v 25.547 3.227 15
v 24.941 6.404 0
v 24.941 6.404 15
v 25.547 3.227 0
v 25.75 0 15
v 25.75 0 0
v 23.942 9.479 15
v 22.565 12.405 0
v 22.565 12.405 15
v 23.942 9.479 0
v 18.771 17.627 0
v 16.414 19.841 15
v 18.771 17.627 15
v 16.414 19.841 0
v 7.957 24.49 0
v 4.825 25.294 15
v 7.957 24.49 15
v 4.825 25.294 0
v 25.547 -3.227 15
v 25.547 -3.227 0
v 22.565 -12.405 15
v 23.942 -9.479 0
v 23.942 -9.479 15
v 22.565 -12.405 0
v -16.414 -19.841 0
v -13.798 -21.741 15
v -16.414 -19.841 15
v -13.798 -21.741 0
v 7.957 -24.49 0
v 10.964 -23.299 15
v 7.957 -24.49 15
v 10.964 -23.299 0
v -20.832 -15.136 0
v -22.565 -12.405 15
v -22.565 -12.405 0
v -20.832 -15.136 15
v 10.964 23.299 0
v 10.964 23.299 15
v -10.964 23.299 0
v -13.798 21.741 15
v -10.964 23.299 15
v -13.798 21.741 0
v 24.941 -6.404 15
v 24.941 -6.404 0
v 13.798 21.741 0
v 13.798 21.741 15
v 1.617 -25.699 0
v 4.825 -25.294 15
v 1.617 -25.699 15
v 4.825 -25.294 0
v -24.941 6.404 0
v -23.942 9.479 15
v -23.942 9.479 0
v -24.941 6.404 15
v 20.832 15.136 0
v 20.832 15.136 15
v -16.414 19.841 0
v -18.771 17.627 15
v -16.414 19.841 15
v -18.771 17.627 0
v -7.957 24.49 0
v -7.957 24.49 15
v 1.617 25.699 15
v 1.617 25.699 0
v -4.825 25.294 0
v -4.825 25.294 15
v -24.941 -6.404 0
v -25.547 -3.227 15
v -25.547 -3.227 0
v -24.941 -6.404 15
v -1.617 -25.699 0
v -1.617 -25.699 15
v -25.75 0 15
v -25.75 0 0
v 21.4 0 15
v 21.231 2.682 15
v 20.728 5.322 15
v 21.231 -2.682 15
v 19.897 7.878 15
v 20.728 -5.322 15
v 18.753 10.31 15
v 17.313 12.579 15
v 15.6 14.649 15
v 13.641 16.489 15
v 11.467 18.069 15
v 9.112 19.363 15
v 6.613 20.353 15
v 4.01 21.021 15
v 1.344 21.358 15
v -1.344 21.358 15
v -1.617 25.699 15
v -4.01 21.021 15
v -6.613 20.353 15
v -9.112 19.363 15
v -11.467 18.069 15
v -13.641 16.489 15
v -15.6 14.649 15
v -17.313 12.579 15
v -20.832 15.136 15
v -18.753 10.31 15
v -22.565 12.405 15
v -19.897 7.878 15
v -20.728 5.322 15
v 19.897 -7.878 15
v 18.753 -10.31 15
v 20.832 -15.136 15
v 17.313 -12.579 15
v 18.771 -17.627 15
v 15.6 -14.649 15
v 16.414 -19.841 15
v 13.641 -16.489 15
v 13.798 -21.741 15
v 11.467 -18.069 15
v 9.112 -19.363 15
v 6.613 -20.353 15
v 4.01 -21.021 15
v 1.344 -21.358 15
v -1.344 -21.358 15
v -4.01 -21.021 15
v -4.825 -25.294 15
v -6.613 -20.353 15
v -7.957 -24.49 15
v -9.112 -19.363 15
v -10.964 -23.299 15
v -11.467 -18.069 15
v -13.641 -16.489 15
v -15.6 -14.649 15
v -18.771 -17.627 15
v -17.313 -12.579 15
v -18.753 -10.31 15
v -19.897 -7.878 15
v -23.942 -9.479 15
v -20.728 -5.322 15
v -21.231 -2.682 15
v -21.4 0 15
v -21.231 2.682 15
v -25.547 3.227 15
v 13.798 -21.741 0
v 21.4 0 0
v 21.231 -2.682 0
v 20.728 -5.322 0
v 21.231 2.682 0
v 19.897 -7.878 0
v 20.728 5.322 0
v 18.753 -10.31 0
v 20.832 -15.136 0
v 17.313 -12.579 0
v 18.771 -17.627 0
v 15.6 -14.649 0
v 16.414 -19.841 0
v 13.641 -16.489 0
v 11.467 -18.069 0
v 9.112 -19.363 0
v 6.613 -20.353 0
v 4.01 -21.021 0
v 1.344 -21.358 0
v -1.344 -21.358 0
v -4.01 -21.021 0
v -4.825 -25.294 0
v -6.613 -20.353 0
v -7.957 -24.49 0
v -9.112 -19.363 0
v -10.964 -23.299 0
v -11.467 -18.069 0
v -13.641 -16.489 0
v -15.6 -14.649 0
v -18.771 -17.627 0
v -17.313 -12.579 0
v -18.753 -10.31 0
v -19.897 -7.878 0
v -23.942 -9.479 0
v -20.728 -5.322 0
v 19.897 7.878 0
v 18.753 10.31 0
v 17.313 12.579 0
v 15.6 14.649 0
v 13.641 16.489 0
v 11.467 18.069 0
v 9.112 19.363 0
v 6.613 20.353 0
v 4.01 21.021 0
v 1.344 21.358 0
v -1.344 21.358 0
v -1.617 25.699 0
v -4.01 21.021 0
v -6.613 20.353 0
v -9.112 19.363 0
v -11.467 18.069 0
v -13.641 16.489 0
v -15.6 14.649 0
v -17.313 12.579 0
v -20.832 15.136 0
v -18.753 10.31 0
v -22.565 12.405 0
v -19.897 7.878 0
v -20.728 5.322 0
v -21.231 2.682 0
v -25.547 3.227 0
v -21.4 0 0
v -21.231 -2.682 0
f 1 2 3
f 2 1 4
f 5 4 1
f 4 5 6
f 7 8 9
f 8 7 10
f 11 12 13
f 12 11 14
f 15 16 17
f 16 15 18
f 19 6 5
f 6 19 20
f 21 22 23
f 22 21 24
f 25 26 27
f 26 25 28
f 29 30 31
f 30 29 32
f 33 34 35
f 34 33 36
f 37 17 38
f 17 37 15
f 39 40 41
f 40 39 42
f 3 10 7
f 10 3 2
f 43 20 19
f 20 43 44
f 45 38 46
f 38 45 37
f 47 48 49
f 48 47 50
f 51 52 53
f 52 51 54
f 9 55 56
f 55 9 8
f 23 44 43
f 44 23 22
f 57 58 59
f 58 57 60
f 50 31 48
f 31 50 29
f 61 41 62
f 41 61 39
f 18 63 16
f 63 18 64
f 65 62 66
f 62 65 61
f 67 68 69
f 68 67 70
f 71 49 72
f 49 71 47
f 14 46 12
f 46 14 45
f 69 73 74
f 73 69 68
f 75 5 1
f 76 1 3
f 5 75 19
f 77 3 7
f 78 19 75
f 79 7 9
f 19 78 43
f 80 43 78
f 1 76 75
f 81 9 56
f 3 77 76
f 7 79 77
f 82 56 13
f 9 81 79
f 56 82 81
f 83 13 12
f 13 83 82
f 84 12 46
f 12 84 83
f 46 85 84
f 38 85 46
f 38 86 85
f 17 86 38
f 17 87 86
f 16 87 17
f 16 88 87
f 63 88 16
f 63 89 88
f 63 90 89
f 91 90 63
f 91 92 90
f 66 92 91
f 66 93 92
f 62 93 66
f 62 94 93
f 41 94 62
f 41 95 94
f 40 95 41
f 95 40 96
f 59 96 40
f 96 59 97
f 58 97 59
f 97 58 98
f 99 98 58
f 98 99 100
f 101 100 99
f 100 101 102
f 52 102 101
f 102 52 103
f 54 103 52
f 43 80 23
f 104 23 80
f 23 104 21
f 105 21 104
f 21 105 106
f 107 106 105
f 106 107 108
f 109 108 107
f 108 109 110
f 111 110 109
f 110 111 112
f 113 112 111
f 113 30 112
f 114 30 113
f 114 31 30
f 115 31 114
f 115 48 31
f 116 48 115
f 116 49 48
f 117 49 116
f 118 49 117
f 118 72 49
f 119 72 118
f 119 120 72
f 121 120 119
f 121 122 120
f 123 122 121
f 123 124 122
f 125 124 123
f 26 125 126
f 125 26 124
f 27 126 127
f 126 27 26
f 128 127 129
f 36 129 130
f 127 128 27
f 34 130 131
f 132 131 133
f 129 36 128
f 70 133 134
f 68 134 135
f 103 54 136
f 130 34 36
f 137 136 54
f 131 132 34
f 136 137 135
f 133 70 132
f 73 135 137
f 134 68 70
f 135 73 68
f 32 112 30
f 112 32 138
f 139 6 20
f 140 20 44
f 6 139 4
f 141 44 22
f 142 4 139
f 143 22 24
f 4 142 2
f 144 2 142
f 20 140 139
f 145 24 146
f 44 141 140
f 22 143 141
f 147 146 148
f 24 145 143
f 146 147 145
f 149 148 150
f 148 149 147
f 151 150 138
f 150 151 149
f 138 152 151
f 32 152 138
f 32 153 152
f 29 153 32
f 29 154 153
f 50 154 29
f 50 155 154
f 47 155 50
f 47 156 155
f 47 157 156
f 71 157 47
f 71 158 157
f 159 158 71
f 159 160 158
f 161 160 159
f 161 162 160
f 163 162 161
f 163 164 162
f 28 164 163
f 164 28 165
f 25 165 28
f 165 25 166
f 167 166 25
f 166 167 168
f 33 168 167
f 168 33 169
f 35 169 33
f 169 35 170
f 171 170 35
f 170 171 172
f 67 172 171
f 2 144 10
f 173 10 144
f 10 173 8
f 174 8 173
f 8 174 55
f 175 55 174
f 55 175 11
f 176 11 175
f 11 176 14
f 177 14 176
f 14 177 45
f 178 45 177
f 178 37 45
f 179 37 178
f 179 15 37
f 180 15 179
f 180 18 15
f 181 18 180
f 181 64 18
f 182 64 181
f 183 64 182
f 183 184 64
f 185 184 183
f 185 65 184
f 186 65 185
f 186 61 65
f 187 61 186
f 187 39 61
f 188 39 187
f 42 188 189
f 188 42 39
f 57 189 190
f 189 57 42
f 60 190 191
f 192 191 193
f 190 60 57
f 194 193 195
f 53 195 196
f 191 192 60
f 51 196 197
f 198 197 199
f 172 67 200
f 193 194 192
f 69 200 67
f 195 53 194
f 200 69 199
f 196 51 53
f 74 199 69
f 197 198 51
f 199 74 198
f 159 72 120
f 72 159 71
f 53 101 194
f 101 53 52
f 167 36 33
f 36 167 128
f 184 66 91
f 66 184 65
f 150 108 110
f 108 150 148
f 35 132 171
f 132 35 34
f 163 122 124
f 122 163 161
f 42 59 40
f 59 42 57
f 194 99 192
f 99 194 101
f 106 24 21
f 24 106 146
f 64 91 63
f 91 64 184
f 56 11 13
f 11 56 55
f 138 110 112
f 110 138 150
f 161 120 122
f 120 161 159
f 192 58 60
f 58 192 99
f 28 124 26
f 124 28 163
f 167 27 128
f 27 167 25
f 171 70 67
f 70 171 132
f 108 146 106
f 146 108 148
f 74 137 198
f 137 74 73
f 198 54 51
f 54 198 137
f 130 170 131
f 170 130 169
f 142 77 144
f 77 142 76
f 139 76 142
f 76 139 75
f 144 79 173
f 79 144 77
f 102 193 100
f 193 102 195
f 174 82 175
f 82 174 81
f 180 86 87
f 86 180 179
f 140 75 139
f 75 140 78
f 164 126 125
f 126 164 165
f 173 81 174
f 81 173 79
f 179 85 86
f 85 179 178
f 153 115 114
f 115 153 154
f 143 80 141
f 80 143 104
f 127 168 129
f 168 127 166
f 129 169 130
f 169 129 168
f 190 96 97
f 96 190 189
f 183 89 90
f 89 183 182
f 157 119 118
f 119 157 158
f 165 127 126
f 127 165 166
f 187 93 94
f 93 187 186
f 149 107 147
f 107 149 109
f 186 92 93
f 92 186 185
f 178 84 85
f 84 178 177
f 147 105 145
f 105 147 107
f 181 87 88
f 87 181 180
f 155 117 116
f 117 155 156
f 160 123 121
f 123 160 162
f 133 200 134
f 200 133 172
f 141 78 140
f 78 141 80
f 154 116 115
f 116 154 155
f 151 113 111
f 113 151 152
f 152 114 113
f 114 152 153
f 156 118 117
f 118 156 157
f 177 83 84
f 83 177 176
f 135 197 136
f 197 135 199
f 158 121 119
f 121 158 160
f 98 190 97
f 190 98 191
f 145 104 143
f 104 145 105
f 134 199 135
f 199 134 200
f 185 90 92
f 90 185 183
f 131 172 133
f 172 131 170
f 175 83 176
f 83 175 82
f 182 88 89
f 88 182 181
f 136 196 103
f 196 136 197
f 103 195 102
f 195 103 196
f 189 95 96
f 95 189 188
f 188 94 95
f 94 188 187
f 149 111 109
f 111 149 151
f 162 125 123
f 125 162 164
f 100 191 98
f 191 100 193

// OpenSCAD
difference(){
    translate([0,0,0])cylinder(r=51.5/2,h=15, $fn=50);
    translate([0,0,-1])cylinder(r=42.8/2,h=18, $fn=50);
}
